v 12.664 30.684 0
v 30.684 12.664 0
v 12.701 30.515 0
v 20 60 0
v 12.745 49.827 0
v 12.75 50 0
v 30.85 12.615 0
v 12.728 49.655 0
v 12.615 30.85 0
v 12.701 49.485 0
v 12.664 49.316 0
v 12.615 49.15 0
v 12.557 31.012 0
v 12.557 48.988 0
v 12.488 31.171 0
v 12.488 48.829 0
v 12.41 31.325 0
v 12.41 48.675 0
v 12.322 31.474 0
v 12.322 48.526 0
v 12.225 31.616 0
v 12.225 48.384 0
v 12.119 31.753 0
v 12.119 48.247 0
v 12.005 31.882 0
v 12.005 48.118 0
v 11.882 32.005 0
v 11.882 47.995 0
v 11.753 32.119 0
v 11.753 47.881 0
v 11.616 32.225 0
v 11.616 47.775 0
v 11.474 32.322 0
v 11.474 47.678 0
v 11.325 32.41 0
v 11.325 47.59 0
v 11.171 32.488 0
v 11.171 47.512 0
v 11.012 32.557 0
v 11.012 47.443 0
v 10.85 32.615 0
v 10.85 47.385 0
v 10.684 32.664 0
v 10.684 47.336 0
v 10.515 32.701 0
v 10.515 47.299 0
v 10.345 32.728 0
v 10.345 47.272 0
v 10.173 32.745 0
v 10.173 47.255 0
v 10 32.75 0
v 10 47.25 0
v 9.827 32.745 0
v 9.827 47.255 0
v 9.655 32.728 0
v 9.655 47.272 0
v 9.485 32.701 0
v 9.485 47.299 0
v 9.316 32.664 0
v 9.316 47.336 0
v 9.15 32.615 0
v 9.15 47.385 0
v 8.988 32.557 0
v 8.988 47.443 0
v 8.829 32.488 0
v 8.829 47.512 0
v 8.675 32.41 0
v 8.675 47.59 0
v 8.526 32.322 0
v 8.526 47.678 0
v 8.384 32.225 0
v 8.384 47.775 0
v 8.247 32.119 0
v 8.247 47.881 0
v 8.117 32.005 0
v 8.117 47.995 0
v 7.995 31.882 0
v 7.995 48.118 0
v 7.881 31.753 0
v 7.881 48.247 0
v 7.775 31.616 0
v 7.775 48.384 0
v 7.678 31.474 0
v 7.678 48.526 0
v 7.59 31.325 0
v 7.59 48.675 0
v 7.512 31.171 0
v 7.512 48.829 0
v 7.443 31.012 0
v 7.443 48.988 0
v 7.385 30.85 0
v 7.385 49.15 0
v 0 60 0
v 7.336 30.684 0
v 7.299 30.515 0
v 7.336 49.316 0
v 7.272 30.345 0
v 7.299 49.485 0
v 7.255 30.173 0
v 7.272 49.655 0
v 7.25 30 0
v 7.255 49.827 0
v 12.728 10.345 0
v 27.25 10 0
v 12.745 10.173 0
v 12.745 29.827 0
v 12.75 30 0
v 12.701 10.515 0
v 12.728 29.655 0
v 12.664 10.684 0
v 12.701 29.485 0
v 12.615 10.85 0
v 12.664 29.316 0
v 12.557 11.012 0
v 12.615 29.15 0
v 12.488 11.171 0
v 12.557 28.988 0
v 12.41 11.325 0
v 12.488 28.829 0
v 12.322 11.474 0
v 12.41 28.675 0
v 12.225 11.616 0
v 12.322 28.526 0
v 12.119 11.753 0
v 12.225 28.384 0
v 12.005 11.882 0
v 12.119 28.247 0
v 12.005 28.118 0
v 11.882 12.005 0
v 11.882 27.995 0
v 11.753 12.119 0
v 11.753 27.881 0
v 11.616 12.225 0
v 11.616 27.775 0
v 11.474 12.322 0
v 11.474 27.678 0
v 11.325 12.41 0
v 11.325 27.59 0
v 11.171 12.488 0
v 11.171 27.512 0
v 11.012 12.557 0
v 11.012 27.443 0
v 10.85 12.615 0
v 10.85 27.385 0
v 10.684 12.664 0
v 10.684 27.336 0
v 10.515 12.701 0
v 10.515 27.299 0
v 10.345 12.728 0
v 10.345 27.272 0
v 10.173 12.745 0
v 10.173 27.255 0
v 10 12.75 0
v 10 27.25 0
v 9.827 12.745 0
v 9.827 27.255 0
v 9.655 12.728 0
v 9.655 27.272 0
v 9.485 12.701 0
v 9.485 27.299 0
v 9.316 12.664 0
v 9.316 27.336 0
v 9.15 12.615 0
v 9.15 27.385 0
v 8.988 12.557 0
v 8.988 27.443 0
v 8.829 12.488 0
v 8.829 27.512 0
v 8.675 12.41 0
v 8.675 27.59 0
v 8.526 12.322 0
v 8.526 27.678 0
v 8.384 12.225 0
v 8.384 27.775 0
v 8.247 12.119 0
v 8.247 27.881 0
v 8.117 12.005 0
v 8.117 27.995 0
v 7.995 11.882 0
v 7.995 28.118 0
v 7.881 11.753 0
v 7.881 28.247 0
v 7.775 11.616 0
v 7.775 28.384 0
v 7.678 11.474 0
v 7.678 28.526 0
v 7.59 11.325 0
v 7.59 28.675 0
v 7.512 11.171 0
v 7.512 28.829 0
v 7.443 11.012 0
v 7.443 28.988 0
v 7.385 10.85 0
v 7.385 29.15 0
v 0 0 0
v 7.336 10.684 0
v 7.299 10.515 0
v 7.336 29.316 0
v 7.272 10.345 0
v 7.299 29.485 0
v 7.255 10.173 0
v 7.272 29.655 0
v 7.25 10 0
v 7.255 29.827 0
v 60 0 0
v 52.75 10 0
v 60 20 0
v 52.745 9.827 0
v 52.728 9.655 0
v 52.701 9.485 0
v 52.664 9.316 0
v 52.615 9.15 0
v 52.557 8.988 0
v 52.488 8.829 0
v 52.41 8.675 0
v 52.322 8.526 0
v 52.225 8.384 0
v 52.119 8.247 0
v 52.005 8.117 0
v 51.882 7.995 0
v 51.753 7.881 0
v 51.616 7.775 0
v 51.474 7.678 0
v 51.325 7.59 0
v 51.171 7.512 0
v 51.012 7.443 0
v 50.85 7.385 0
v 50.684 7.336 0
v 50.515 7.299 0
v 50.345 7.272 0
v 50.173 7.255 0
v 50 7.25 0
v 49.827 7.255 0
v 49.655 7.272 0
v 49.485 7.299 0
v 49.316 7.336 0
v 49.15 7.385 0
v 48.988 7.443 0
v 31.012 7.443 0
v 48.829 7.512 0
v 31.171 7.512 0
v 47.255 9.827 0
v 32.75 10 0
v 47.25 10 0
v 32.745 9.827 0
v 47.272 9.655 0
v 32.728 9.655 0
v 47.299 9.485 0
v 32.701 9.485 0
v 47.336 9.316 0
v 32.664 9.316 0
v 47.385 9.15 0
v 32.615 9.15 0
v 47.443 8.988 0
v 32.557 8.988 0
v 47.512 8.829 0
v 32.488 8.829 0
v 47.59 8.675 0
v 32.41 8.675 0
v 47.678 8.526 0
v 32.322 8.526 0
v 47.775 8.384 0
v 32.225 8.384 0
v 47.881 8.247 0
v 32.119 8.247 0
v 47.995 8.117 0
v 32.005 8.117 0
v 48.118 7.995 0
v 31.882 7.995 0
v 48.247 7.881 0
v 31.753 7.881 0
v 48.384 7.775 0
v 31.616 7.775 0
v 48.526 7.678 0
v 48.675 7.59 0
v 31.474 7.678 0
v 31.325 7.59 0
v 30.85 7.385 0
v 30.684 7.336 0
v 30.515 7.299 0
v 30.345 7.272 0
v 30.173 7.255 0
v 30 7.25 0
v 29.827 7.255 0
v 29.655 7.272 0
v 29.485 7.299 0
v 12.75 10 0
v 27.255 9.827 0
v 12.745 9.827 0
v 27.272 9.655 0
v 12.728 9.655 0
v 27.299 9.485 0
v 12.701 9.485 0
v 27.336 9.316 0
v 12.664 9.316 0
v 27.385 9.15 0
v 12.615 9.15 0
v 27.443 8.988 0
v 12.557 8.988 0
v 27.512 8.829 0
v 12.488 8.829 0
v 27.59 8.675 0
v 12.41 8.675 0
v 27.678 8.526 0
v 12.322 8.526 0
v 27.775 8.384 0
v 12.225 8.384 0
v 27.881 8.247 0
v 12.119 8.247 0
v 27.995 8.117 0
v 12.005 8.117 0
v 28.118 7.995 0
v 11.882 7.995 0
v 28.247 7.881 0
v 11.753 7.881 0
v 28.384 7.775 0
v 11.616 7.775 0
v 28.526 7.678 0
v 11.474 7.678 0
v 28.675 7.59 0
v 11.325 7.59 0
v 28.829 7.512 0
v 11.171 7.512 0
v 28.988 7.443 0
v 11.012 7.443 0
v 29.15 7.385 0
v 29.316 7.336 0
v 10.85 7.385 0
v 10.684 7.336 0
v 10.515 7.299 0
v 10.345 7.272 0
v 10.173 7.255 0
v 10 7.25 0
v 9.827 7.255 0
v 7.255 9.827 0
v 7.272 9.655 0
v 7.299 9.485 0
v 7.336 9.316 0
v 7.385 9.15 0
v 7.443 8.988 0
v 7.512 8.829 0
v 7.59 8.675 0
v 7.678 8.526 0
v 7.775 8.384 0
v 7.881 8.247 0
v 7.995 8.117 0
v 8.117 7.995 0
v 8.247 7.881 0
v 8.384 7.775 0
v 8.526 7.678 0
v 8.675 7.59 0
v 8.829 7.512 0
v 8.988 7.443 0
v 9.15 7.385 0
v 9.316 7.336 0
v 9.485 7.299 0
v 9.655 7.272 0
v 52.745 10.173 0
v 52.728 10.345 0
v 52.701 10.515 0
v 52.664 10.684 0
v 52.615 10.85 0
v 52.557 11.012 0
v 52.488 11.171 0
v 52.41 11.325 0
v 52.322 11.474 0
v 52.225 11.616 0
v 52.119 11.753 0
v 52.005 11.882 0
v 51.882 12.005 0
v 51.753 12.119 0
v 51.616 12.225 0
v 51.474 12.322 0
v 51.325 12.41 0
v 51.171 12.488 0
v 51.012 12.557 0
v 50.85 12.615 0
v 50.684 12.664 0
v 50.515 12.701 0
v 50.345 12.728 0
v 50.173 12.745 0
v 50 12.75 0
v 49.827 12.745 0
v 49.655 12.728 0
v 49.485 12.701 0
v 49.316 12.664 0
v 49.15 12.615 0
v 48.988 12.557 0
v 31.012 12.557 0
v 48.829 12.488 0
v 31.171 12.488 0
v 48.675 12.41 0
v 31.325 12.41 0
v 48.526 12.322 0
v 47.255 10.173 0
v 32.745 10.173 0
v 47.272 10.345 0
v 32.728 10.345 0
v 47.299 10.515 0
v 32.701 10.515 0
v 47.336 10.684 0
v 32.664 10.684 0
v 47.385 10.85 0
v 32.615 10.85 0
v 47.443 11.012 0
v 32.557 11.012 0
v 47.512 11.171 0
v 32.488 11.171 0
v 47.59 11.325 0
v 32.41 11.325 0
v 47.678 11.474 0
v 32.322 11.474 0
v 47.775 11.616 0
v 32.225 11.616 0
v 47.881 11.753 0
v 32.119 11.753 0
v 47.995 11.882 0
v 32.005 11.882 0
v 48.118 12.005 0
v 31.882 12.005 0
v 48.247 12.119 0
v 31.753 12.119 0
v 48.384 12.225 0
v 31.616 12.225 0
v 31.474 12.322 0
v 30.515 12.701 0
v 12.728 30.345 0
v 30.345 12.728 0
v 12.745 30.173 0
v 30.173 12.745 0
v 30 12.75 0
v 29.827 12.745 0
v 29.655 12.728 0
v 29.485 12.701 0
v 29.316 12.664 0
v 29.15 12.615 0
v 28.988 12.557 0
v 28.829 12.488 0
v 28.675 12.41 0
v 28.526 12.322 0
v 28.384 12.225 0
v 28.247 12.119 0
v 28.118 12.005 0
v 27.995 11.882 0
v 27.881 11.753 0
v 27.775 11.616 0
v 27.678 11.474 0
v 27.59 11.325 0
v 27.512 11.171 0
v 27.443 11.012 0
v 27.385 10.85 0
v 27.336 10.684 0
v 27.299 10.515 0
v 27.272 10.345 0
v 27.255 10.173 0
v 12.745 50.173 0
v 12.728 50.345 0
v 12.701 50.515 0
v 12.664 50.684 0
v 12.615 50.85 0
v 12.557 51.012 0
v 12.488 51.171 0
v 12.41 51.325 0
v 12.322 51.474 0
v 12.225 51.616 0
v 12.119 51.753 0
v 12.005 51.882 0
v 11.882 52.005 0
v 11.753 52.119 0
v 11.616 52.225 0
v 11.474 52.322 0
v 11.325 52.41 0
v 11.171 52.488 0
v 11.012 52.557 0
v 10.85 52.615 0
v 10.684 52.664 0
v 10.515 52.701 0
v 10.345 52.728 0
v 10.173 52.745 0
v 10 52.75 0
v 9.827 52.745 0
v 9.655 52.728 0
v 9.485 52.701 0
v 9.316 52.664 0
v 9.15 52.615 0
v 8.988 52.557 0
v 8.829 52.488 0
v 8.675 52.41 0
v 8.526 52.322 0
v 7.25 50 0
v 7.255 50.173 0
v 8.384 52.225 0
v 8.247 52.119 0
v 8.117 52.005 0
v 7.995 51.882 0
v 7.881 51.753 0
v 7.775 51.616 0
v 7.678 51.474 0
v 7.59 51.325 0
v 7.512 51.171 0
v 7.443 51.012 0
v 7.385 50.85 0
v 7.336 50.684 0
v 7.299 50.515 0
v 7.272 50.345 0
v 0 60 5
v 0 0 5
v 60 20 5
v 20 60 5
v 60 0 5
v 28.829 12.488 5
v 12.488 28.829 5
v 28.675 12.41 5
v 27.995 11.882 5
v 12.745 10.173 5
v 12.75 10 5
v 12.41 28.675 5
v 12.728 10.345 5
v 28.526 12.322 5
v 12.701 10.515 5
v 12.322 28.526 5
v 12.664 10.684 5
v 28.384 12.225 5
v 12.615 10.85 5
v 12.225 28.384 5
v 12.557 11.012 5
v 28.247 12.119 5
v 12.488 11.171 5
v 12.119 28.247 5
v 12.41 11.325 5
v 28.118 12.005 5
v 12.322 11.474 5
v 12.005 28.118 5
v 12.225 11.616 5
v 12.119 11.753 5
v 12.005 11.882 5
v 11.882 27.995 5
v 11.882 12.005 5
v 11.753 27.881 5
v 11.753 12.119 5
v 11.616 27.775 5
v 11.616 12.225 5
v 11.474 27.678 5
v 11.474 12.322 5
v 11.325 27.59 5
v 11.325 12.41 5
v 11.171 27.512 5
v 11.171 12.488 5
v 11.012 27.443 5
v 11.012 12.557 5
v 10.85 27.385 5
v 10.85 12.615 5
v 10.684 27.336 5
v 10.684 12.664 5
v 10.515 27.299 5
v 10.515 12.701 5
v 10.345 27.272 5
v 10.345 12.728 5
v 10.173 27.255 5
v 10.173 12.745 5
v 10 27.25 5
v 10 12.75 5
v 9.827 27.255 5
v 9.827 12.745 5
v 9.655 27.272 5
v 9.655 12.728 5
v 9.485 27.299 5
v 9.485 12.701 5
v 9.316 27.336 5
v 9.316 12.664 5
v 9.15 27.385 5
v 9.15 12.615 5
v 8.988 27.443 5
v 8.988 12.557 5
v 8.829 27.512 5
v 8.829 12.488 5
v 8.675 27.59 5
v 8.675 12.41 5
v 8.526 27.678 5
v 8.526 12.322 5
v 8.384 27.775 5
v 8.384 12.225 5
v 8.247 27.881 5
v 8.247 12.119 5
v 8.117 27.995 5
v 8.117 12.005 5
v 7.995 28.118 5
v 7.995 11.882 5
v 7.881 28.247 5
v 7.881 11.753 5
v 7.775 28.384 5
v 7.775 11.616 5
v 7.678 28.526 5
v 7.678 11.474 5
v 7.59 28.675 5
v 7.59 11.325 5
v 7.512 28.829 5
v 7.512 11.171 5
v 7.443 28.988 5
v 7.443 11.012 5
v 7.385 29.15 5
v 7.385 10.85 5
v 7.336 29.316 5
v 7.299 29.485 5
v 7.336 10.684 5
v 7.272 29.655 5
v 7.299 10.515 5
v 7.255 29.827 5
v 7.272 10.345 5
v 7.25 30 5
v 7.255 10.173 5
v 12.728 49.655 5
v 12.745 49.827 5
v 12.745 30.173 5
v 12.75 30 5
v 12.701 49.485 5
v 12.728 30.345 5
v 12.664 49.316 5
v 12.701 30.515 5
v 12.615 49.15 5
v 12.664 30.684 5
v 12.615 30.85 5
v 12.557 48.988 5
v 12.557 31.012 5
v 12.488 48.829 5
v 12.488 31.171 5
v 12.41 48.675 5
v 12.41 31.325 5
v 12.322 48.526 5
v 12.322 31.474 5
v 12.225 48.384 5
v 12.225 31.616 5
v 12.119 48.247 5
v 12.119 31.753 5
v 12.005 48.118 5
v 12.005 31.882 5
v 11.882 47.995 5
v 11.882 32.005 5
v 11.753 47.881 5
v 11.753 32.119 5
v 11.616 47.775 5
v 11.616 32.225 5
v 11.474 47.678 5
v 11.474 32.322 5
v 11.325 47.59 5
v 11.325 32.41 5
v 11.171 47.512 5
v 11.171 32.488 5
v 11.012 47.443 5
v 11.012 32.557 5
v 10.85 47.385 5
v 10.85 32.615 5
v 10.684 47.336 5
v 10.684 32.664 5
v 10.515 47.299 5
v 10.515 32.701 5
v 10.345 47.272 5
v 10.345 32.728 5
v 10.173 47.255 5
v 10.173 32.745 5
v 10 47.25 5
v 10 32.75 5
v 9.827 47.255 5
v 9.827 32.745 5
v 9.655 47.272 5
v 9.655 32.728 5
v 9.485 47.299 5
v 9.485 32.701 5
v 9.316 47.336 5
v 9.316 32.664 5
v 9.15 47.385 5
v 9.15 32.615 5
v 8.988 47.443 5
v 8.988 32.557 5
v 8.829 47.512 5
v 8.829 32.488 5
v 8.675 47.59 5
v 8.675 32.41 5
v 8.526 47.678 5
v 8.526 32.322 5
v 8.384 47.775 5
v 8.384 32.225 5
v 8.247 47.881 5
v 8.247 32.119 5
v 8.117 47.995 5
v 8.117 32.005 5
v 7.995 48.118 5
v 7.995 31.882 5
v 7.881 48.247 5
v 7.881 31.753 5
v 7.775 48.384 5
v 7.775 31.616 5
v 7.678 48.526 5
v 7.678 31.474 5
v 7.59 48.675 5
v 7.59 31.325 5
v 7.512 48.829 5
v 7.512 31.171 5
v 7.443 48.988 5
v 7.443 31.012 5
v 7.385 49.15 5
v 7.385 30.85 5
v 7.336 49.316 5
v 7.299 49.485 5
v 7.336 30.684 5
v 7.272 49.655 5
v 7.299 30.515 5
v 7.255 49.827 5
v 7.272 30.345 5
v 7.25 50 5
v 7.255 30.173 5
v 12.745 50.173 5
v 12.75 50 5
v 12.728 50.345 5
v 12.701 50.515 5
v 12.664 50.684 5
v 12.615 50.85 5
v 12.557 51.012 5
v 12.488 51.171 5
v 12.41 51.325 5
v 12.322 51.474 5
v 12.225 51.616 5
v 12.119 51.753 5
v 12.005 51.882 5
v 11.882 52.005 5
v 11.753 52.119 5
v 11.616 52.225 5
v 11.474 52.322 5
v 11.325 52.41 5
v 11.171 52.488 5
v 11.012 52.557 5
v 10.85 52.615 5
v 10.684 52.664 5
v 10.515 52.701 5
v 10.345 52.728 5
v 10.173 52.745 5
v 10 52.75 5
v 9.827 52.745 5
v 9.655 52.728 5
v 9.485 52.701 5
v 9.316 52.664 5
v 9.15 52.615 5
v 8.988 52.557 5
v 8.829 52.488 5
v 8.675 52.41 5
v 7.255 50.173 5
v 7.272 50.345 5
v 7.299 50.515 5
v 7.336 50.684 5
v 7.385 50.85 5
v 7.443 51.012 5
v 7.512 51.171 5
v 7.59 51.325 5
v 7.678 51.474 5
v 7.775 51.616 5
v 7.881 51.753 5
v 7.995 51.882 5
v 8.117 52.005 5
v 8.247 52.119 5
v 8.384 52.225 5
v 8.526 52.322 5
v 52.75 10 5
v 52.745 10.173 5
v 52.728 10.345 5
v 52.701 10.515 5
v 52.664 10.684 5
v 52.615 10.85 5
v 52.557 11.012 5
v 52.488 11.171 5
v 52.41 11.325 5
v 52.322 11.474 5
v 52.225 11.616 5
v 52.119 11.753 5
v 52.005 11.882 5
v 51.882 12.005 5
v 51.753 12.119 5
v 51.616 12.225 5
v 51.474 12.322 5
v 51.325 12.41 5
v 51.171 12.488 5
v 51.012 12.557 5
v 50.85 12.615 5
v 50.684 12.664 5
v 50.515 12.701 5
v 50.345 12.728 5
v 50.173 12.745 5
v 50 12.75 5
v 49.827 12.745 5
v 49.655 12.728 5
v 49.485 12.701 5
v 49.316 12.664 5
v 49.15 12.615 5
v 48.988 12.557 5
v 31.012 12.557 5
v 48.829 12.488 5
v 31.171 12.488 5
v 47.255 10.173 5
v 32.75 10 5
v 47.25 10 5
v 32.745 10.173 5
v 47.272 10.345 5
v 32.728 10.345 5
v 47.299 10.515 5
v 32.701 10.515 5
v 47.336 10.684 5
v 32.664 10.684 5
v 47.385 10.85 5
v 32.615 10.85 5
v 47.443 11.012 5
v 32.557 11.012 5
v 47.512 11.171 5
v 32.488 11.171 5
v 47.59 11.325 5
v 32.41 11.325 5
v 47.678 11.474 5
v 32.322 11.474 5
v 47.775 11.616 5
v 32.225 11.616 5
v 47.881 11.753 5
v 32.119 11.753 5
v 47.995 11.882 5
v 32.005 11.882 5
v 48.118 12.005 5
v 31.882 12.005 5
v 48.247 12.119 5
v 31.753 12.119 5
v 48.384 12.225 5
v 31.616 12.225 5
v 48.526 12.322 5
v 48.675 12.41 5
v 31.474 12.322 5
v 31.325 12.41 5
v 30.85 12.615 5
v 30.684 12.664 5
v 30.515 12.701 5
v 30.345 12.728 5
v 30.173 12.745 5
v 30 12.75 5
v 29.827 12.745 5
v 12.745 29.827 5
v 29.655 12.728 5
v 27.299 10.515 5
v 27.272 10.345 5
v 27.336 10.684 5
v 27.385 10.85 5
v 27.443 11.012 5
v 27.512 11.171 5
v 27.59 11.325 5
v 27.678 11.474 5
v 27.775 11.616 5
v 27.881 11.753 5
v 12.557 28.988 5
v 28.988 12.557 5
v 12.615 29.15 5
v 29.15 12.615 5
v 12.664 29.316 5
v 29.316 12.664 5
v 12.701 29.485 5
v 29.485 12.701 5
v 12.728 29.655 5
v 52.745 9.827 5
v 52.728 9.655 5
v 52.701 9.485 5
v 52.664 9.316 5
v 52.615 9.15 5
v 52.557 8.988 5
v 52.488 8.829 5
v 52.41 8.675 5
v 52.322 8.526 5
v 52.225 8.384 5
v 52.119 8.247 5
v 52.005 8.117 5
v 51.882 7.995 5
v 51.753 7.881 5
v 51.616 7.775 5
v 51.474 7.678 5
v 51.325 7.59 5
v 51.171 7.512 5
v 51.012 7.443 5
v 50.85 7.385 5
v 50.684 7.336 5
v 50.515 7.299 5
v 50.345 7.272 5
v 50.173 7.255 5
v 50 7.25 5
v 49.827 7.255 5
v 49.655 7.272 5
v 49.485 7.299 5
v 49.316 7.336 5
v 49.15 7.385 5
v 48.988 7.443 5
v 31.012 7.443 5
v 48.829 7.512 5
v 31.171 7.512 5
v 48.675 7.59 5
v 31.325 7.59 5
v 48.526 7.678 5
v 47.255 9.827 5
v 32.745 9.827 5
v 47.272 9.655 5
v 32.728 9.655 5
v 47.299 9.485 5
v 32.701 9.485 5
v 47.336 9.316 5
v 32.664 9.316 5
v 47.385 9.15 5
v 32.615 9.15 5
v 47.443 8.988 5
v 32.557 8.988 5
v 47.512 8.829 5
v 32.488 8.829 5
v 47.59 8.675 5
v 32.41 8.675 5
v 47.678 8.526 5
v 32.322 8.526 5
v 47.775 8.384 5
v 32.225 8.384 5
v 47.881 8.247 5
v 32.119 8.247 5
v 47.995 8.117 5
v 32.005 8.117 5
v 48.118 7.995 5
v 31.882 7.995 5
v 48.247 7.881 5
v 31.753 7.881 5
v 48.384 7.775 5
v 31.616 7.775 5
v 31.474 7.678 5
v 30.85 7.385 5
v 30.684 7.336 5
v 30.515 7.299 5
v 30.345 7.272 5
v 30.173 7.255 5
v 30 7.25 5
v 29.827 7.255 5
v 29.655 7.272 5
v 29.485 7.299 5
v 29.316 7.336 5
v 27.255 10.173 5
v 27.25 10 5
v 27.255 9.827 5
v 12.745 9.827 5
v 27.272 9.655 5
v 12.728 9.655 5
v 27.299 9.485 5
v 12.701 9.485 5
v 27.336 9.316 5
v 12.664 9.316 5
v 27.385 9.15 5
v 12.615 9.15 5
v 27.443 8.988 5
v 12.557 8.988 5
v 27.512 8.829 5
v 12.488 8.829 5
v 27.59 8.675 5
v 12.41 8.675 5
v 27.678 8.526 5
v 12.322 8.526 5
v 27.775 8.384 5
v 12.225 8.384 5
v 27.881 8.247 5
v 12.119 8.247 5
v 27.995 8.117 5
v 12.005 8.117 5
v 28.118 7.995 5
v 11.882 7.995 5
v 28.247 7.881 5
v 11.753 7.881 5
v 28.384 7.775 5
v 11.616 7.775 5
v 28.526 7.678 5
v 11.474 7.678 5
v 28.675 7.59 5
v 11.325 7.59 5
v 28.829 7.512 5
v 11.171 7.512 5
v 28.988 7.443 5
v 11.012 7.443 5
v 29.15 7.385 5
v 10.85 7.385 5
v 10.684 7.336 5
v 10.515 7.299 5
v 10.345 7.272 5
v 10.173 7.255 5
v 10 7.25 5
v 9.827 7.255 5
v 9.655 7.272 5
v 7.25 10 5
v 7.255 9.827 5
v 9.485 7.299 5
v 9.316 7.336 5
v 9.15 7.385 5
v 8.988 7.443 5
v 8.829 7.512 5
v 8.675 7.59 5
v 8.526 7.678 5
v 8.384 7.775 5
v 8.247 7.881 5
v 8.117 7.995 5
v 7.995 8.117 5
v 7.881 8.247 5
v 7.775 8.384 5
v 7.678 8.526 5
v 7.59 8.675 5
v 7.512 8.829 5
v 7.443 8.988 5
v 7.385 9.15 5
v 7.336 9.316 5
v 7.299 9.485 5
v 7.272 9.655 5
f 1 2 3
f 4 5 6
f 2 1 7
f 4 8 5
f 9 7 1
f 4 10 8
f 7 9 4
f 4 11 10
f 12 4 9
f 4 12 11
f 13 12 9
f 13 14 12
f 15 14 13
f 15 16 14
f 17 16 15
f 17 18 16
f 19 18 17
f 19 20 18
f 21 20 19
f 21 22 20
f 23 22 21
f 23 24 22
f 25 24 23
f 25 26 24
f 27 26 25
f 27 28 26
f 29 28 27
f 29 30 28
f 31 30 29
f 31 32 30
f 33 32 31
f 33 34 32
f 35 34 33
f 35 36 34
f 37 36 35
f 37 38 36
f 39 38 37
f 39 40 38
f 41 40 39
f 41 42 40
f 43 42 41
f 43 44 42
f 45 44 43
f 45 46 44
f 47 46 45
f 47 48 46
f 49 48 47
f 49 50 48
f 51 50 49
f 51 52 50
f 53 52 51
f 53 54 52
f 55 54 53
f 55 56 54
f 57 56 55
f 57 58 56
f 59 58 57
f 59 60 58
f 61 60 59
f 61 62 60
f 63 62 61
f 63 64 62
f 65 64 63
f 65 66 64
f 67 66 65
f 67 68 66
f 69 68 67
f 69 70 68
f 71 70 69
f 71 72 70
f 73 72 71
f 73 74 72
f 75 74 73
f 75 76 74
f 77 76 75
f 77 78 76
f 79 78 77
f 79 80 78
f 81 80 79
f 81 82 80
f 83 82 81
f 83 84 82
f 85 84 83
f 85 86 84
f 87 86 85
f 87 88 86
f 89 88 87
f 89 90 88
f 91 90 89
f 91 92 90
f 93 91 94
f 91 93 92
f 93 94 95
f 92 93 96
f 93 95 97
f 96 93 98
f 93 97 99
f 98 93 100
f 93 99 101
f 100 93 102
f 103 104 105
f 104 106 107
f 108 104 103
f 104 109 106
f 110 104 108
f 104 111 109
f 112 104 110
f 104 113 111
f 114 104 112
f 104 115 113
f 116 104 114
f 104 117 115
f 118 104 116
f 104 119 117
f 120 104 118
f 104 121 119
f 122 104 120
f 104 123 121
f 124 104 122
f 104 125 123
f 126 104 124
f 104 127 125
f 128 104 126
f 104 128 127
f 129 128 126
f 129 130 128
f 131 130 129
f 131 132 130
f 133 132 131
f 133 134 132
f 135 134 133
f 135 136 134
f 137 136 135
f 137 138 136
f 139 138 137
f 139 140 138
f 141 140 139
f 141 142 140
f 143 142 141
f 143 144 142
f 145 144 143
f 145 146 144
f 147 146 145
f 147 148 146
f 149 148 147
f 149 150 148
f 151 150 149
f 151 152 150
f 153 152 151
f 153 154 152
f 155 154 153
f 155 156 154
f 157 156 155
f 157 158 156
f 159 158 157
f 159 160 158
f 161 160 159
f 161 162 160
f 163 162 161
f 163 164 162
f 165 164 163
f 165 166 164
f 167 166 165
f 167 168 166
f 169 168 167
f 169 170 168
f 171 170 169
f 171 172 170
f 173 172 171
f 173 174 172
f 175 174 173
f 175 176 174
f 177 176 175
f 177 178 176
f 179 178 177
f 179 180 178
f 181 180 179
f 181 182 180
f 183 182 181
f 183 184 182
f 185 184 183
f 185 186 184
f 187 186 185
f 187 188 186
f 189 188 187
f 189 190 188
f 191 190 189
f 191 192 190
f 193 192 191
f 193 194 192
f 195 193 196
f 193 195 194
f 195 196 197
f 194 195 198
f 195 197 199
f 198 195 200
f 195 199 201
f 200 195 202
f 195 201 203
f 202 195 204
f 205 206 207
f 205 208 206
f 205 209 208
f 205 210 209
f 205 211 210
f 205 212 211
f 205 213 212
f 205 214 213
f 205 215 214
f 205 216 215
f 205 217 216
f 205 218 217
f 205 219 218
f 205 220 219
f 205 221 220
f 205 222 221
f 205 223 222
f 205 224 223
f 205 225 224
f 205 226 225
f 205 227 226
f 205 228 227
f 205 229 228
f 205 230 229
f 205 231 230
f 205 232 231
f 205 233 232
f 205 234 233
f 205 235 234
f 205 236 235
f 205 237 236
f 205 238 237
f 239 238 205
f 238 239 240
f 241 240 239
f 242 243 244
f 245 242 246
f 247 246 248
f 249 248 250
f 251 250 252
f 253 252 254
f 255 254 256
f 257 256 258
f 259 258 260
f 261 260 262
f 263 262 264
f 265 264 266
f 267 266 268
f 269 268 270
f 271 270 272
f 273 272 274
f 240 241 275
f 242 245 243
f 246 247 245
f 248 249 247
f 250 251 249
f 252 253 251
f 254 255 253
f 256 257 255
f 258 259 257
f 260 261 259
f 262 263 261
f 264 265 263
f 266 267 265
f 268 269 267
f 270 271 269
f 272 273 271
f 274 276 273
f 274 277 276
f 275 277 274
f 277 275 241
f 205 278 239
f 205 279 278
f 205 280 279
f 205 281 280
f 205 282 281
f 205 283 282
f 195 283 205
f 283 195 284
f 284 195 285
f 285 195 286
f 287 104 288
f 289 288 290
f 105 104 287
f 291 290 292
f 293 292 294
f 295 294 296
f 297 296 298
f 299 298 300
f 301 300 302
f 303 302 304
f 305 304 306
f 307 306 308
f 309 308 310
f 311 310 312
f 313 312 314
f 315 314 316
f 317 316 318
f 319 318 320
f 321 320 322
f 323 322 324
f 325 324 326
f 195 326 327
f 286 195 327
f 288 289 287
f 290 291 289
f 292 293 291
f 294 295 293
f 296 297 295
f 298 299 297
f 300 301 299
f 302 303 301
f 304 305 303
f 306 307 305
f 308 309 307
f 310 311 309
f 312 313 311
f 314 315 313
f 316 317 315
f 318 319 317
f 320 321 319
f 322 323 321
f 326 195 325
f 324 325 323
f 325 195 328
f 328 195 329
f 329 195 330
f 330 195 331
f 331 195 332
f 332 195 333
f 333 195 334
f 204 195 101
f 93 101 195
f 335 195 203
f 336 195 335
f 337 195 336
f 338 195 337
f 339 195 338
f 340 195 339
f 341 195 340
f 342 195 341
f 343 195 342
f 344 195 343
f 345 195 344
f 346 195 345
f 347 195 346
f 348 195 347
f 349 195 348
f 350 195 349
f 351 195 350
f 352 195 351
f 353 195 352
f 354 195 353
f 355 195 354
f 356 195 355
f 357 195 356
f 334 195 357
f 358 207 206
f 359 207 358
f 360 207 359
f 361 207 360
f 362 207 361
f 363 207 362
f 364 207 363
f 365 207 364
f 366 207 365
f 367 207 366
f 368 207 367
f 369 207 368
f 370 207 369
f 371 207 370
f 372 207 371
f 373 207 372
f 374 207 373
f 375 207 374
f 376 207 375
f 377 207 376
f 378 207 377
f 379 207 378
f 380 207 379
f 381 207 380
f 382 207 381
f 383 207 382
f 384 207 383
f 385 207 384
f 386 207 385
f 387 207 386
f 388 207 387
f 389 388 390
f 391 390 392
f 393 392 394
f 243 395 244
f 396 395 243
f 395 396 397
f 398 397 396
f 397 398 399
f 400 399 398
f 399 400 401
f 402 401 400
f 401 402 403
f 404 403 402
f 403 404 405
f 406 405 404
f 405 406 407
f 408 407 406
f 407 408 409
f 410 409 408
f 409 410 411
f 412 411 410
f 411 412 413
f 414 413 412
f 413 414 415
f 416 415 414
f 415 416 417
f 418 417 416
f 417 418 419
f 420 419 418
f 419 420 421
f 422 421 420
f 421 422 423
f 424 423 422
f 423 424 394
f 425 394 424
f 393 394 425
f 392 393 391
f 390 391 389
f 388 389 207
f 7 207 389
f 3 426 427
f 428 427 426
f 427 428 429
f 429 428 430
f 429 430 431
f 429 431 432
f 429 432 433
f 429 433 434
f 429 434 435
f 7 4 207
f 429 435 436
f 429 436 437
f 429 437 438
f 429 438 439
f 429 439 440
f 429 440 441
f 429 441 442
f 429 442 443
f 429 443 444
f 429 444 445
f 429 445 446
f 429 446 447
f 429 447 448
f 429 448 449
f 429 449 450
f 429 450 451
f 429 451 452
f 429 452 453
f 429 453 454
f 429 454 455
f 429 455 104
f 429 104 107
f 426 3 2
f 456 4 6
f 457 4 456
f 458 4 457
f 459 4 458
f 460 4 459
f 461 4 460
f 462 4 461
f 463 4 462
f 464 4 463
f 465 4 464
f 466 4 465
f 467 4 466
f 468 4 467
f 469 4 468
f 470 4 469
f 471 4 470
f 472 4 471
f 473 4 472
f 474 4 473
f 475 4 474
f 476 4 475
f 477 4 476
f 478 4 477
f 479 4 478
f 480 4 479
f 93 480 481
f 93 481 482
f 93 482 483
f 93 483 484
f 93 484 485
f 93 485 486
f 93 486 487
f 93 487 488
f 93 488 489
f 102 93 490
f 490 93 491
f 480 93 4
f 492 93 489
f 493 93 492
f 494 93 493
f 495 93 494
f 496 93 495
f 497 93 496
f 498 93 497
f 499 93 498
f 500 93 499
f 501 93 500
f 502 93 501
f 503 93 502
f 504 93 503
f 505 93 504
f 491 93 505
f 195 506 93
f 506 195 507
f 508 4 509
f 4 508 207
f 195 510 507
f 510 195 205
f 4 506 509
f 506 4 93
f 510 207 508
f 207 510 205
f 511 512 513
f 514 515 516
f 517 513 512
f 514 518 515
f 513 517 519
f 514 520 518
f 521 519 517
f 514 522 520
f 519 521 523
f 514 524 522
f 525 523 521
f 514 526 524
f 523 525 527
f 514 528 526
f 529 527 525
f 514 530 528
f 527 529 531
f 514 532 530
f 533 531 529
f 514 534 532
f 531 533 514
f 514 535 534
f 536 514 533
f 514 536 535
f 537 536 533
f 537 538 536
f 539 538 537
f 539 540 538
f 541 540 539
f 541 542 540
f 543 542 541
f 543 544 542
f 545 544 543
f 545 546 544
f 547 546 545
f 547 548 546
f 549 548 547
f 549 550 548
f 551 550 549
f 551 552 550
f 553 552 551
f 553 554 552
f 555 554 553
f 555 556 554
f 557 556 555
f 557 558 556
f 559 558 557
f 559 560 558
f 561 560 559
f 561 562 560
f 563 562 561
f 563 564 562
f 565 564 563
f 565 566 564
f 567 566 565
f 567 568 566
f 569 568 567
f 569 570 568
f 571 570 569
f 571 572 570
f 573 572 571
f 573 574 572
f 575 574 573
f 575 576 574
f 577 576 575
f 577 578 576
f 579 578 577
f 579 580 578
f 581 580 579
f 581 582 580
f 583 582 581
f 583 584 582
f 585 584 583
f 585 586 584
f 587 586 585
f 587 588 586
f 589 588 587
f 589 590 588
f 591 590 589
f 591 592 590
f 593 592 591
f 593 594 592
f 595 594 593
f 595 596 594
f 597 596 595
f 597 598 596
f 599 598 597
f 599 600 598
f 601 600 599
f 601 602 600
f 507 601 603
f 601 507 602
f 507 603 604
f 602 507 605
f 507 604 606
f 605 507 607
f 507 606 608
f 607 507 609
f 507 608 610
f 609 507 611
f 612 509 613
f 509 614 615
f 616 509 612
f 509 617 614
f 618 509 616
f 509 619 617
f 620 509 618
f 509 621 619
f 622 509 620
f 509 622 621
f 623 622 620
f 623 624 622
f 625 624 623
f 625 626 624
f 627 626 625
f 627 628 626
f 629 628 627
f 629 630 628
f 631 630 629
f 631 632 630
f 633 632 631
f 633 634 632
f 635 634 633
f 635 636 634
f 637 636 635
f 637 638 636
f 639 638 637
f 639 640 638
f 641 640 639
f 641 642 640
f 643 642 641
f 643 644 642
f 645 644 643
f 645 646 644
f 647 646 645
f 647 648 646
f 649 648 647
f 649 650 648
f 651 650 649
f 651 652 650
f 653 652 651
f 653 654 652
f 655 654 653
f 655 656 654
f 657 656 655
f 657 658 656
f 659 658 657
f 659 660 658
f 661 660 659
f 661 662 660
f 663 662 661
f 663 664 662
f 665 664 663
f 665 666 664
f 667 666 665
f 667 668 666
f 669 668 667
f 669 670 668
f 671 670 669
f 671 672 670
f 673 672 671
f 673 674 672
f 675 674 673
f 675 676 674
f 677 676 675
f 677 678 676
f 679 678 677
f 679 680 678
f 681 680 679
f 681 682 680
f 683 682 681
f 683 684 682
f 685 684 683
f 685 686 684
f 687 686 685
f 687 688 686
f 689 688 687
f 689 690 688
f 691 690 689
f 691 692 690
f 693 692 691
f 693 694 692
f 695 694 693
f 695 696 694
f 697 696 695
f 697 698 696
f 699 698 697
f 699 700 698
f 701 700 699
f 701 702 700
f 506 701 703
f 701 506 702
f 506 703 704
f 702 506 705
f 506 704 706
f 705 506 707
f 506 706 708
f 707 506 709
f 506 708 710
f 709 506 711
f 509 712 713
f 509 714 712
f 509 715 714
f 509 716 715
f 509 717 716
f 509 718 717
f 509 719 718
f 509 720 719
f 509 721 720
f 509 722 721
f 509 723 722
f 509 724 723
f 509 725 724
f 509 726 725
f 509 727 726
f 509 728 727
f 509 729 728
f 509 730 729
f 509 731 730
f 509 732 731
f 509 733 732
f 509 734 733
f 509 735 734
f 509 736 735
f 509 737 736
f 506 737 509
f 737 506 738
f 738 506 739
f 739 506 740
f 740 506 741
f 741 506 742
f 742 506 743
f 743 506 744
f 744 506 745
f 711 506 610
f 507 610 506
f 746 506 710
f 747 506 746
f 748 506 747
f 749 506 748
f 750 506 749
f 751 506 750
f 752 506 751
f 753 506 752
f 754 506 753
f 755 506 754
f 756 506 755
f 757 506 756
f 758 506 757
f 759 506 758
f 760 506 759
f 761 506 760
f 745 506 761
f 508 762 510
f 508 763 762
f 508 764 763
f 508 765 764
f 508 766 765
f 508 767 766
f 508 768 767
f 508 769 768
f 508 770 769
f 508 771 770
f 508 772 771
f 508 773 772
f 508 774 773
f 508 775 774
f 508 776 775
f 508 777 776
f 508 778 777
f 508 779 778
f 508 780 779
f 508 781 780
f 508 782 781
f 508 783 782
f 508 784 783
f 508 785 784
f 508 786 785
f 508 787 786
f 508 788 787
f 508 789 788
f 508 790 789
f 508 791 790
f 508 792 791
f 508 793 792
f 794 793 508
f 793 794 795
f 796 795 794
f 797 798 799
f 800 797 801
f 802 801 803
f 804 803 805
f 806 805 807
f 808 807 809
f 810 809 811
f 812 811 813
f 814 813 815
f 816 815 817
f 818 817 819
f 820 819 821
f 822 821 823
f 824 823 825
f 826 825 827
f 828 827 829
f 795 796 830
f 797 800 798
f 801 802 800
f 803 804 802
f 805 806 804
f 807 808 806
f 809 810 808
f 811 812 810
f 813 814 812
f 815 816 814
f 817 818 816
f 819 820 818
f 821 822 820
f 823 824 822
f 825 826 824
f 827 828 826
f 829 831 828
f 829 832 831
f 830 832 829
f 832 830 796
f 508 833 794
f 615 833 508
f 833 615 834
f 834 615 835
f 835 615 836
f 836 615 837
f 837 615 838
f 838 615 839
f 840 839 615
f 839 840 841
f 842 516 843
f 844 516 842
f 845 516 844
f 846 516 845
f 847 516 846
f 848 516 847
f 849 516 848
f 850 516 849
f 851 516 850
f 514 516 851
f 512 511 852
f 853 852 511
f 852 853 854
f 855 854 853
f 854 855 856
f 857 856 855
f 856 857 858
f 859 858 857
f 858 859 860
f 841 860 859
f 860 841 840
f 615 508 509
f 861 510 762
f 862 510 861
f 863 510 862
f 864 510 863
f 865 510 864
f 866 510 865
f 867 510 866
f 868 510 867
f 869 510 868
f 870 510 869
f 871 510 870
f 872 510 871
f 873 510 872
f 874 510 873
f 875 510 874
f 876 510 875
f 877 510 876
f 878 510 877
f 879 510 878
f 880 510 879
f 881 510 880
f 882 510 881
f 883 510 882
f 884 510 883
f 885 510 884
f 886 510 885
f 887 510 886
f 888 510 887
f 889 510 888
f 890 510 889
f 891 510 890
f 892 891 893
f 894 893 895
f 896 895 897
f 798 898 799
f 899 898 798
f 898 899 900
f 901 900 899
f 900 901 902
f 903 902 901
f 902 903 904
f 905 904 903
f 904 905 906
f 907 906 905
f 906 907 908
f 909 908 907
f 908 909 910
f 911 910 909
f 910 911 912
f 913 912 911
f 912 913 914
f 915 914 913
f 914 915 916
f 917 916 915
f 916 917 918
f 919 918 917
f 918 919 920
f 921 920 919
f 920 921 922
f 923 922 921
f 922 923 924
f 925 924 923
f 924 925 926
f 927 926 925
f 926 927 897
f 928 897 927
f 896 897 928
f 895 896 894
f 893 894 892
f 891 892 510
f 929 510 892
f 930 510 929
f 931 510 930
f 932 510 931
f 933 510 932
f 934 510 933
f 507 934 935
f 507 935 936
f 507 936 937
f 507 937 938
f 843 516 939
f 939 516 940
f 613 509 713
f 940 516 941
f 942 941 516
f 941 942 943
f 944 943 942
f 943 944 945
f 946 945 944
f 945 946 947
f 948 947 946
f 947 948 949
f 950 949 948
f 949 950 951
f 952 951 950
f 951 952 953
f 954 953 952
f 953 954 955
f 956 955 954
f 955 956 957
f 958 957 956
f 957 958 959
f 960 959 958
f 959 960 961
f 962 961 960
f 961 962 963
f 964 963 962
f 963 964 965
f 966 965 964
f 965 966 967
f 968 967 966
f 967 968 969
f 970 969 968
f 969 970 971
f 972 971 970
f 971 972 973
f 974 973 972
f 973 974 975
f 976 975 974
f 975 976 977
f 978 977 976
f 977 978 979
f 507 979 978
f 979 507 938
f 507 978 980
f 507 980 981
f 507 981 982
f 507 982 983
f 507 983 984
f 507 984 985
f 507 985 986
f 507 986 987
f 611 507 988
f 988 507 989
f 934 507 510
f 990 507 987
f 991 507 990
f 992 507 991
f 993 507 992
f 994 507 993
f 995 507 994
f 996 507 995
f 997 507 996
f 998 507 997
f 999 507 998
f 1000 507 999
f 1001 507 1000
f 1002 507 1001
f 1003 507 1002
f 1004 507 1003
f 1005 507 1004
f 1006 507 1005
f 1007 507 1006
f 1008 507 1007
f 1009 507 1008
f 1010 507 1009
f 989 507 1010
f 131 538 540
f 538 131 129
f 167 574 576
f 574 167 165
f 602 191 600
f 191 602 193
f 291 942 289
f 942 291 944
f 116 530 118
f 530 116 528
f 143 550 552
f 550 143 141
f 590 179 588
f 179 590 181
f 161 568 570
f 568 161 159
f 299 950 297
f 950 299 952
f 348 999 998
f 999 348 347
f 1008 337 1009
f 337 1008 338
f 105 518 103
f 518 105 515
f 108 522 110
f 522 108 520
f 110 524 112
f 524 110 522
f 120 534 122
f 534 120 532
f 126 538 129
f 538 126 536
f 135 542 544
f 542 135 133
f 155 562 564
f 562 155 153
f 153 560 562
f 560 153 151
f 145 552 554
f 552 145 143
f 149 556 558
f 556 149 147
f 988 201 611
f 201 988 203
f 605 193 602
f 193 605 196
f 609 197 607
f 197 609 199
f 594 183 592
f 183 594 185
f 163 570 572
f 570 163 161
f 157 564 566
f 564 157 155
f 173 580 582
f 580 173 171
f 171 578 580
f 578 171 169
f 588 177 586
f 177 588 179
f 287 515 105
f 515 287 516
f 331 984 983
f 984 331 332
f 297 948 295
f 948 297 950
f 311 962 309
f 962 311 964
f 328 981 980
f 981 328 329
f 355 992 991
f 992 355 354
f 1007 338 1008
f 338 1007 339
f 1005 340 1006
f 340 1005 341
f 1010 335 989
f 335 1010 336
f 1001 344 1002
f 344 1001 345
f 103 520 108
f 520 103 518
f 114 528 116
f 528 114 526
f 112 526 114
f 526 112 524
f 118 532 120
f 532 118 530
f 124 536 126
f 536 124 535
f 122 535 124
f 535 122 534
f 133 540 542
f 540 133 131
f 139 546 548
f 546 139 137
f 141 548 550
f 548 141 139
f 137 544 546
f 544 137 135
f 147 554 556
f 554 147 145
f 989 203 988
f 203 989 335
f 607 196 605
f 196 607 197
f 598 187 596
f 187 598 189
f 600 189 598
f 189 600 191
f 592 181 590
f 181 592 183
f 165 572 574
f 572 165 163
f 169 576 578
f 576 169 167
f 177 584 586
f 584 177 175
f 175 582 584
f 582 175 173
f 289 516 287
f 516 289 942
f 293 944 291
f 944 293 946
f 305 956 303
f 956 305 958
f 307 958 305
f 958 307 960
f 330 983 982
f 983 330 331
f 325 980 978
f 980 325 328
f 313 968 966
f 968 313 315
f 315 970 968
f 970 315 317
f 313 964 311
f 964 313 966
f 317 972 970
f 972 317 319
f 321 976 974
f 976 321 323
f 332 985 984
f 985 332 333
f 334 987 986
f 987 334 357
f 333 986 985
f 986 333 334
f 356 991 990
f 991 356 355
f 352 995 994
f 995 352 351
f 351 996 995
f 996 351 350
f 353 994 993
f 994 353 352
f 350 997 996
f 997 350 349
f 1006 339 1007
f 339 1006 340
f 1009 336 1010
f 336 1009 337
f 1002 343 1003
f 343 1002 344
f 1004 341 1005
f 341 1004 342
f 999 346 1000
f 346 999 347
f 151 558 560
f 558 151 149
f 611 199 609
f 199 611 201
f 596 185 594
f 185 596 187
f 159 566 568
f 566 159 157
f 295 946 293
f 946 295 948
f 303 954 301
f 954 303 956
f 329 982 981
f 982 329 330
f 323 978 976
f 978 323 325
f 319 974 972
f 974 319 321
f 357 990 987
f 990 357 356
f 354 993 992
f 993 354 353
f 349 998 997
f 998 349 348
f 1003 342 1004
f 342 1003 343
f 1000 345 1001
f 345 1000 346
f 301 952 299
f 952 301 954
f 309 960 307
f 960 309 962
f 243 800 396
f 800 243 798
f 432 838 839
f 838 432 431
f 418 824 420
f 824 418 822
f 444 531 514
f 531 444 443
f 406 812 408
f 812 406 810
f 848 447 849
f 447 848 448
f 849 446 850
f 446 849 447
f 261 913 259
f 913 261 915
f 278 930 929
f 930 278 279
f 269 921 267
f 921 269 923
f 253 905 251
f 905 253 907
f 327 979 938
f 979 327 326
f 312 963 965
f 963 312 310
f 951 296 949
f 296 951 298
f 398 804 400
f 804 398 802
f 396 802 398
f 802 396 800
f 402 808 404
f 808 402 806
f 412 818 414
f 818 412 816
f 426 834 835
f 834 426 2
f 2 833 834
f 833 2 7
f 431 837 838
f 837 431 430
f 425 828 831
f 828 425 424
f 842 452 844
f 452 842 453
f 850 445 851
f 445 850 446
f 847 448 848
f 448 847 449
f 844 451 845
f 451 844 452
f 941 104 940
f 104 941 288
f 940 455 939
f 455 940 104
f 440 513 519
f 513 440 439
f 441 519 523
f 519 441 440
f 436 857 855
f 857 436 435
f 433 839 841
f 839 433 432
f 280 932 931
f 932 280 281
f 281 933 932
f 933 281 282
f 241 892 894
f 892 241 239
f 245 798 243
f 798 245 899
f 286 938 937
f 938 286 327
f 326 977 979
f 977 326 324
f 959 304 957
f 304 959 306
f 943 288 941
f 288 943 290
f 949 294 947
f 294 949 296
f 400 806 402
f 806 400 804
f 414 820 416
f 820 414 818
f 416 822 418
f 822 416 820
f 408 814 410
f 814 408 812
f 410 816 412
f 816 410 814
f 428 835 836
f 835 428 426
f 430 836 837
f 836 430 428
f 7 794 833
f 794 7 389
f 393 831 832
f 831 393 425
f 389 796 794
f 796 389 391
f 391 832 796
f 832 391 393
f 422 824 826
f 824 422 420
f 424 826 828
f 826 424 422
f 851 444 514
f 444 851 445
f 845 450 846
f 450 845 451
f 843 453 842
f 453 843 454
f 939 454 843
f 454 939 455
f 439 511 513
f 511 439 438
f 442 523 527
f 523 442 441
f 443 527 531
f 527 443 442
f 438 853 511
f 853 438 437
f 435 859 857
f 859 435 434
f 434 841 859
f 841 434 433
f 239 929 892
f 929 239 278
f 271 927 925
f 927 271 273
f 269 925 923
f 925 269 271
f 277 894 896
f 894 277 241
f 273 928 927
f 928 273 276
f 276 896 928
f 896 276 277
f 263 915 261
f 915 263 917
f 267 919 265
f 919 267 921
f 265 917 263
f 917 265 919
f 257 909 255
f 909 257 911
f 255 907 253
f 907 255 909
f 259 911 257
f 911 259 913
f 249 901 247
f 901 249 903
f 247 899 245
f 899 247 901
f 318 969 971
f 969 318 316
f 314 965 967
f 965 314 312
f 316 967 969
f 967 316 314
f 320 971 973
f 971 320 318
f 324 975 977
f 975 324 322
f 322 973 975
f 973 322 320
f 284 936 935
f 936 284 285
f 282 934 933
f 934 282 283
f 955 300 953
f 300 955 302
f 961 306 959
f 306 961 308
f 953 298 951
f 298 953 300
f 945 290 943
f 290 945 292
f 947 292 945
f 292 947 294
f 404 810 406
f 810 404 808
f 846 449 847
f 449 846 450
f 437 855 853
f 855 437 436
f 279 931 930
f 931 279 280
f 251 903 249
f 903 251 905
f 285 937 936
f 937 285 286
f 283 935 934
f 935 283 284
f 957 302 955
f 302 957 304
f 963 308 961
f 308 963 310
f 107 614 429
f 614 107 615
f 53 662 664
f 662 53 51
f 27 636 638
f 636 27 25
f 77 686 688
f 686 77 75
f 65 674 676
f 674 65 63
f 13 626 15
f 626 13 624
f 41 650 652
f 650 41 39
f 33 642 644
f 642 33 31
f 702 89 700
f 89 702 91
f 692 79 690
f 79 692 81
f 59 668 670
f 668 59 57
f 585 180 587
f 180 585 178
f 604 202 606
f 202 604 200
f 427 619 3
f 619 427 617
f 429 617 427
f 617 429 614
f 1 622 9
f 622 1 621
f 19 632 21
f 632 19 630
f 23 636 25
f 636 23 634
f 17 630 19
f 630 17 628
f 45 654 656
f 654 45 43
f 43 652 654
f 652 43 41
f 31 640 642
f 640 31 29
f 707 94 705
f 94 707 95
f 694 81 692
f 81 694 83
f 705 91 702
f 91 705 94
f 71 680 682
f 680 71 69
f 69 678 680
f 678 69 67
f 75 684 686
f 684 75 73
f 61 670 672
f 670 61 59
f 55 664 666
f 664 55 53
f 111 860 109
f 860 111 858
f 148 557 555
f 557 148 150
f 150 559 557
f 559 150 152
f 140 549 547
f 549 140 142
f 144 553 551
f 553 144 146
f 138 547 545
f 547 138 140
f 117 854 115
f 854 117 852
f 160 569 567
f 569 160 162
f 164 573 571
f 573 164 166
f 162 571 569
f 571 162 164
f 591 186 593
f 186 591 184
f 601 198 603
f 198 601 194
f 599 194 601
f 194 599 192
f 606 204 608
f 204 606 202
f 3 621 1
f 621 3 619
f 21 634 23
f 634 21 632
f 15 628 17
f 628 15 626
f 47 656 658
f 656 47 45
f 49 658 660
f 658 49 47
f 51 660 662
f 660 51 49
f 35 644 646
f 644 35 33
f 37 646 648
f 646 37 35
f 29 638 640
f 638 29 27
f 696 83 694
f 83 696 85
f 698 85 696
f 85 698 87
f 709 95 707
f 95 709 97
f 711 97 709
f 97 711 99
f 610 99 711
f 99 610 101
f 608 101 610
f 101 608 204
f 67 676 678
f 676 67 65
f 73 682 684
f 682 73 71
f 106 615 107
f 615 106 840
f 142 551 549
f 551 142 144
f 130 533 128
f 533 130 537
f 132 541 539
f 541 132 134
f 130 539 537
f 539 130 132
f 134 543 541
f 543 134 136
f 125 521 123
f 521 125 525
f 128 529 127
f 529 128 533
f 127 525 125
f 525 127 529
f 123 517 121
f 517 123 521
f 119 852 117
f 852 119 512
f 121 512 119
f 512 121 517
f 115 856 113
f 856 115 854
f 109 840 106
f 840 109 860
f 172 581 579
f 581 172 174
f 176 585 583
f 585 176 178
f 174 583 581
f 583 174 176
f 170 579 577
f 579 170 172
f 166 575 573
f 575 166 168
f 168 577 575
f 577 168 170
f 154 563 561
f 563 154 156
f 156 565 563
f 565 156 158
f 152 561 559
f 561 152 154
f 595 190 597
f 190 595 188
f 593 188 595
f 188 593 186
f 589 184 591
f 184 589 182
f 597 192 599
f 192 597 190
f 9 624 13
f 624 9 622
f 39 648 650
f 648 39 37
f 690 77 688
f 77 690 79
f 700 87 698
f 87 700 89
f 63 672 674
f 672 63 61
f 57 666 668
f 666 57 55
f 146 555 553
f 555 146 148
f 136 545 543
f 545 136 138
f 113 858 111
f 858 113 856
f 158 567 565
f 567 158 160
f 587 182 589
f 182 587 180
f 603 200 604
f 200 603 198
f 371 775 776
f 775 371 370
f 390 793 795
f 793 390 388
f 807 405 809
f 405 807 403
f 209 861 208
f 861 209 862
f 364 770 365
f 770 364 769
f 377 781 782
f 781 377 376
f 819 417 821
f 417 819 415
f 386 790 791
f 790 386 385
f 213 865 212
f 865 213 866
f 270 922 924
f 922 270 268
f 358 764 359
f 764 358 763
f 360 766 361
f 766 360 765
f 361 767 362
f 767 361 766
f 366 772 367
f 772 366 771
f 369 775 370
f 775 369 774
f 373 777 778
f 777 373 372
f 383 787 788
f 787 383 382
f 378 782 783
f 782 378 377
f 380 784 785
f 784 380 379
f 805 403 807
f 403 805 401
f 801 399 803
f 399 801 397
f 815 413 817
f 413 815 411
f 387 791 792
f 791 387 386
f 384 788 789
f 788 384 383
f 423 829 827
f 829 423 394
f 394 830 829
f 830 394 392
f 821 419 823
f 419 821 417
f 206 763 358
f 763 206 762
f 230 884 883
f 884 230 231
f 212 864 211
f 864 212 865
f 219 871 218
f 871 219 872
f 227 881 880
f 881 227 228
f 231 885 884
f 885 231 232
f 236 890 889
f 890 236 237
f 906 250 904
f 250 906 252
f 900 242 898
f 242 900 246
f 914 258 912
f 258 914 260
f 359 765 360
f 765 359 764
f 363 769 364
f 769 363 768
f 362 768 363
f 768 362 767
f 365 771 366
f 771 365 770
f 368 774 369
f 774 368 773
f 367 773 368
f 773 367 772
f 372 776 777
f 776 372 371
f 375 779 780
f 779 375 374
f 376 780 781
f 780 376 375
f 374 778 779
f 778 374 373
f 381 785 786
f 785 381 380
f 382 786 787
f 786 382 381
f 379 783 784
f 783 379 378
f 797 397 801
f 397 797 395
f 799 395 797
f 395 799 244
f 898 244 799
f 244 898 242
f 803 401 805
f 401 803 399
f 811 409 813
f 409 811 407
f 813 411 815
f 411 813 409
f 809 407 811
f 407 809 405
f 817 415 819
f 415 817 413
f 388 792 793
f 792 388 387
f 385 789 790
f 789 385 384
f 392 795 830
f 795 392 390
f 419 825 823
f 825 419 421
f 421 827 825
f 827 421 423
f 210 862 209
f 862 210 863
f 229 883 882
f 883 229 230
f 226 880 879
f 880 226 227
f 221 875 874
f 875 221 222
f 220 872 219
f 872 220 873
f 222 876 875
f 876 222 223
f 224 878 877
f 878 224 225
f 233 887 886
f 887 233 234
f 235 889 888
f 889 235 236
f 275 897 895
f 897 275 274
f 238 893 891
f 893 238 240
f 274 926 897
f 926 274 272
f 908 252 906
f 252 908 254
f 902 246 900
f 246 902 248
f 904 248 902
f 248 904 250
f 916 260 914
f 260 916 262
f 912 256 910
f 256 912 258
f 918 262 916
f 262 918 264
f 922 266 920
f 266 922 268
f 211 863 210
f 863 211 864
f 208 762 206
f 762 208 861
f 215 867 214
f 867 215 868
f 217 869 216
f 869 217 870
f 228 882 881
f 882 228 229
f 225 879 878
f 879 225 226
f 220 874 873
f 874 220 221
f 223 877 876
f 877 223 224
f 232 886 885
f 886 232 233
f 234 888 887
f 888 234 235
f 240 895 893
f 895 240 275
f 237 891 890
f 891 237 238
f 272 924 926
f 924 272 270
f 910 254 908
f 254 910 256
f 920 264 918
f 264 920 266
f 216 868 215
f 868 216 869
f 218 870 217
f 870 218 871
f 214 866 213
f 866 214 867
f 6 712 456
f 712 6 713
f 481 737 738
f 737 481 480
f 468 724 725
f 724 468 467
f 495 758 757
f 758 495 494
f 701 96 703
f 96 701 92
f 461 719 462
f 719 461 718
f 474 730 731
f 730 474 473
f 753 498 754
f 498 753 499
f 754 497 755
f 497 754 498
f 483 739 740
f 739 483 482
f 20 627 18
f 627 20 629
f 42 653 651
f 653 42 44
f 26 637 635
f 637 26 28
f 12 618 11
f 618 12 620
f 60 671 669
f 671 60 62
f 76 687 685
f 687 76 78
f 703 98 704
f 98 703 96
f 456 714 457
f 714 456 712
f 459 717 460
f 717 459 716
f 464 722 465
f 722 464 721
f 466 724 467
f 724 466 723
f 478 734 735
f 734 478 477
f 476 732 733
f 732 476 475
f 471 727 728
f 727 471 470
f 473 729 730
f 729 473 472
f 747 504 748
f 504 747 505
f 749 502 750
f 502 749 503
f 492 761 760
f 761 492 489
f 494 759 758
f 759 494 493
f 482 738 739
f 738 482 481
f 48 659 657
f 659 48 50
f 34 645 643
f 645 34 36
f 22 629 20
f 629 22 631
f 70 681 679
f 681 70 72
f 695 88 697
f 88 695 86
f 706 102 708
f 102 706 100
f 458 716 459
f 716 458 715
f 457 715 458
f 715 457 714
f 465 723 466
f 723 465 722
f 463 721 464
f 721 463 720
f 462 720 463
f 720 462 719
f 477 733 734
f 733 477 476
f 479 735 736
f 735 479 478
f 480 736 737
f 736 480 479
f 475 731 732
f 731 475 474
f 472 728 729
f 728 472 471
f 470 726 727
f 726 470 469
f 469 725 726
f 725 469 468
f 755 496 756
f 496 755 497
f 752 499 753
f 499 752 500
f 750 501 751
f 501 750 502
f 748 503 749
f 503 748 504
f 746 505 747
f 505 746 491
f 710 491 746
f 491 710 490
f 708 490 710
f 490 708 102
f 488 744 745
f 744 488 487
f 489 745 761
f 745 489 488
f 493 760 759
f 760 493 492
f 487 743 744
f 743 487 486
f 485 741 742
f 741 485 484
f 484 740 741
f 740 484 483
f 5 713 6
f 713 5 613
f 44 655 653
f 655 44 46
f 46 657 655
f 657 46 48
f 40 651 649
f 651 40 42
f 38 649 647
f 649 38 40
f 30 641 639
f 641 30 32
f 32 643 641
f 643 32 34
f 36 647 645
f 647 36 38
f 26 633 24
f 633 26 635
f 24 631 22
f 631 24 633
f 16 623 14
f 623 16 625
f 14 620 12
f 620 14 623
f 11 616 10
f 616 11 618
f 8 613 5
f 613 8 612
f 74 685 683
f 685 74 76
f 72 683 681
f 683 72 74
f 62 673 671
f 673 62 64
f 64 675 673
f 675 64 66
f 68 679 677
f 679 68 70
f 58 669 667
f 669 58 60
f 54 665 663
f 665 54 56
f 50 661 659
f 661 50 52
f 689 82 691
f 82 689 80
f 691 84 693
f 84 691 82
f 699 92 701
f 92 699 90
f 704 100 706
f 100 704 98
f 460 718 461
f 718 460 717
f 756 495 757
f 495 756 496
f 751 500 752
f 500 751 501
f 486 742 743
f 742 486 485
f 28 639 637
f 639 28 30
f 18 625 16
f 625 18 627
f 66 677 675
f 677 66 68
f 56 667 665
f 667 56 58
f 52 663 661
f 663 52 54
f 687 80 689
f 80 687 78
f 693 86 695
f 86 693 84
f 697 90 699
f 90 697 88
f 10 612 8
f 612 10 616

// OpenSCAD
$fn = 100;
difference()
        {
            linear_extrude(height=5)
            polygon( points=
                [[0,0],
                [60,0],
                [60,20],
                [20,60],
                [0,60]
            ]);
            translate([10,10,-0.01])
                cylinder(h=5.02,d=5.5);
            translate([30,10,-0.01])
                cylinder(h=5.02,d=5.5);
            translate([10,30,-0.01])
                cylinder(h=5.02,d=5.5);
            translate([50,10,-0.01])
                cylinder(h=5.02,d=5.5);
            translate([10,50,-0.01])
                cylinder(h=5.02,d=5.5);
        }
